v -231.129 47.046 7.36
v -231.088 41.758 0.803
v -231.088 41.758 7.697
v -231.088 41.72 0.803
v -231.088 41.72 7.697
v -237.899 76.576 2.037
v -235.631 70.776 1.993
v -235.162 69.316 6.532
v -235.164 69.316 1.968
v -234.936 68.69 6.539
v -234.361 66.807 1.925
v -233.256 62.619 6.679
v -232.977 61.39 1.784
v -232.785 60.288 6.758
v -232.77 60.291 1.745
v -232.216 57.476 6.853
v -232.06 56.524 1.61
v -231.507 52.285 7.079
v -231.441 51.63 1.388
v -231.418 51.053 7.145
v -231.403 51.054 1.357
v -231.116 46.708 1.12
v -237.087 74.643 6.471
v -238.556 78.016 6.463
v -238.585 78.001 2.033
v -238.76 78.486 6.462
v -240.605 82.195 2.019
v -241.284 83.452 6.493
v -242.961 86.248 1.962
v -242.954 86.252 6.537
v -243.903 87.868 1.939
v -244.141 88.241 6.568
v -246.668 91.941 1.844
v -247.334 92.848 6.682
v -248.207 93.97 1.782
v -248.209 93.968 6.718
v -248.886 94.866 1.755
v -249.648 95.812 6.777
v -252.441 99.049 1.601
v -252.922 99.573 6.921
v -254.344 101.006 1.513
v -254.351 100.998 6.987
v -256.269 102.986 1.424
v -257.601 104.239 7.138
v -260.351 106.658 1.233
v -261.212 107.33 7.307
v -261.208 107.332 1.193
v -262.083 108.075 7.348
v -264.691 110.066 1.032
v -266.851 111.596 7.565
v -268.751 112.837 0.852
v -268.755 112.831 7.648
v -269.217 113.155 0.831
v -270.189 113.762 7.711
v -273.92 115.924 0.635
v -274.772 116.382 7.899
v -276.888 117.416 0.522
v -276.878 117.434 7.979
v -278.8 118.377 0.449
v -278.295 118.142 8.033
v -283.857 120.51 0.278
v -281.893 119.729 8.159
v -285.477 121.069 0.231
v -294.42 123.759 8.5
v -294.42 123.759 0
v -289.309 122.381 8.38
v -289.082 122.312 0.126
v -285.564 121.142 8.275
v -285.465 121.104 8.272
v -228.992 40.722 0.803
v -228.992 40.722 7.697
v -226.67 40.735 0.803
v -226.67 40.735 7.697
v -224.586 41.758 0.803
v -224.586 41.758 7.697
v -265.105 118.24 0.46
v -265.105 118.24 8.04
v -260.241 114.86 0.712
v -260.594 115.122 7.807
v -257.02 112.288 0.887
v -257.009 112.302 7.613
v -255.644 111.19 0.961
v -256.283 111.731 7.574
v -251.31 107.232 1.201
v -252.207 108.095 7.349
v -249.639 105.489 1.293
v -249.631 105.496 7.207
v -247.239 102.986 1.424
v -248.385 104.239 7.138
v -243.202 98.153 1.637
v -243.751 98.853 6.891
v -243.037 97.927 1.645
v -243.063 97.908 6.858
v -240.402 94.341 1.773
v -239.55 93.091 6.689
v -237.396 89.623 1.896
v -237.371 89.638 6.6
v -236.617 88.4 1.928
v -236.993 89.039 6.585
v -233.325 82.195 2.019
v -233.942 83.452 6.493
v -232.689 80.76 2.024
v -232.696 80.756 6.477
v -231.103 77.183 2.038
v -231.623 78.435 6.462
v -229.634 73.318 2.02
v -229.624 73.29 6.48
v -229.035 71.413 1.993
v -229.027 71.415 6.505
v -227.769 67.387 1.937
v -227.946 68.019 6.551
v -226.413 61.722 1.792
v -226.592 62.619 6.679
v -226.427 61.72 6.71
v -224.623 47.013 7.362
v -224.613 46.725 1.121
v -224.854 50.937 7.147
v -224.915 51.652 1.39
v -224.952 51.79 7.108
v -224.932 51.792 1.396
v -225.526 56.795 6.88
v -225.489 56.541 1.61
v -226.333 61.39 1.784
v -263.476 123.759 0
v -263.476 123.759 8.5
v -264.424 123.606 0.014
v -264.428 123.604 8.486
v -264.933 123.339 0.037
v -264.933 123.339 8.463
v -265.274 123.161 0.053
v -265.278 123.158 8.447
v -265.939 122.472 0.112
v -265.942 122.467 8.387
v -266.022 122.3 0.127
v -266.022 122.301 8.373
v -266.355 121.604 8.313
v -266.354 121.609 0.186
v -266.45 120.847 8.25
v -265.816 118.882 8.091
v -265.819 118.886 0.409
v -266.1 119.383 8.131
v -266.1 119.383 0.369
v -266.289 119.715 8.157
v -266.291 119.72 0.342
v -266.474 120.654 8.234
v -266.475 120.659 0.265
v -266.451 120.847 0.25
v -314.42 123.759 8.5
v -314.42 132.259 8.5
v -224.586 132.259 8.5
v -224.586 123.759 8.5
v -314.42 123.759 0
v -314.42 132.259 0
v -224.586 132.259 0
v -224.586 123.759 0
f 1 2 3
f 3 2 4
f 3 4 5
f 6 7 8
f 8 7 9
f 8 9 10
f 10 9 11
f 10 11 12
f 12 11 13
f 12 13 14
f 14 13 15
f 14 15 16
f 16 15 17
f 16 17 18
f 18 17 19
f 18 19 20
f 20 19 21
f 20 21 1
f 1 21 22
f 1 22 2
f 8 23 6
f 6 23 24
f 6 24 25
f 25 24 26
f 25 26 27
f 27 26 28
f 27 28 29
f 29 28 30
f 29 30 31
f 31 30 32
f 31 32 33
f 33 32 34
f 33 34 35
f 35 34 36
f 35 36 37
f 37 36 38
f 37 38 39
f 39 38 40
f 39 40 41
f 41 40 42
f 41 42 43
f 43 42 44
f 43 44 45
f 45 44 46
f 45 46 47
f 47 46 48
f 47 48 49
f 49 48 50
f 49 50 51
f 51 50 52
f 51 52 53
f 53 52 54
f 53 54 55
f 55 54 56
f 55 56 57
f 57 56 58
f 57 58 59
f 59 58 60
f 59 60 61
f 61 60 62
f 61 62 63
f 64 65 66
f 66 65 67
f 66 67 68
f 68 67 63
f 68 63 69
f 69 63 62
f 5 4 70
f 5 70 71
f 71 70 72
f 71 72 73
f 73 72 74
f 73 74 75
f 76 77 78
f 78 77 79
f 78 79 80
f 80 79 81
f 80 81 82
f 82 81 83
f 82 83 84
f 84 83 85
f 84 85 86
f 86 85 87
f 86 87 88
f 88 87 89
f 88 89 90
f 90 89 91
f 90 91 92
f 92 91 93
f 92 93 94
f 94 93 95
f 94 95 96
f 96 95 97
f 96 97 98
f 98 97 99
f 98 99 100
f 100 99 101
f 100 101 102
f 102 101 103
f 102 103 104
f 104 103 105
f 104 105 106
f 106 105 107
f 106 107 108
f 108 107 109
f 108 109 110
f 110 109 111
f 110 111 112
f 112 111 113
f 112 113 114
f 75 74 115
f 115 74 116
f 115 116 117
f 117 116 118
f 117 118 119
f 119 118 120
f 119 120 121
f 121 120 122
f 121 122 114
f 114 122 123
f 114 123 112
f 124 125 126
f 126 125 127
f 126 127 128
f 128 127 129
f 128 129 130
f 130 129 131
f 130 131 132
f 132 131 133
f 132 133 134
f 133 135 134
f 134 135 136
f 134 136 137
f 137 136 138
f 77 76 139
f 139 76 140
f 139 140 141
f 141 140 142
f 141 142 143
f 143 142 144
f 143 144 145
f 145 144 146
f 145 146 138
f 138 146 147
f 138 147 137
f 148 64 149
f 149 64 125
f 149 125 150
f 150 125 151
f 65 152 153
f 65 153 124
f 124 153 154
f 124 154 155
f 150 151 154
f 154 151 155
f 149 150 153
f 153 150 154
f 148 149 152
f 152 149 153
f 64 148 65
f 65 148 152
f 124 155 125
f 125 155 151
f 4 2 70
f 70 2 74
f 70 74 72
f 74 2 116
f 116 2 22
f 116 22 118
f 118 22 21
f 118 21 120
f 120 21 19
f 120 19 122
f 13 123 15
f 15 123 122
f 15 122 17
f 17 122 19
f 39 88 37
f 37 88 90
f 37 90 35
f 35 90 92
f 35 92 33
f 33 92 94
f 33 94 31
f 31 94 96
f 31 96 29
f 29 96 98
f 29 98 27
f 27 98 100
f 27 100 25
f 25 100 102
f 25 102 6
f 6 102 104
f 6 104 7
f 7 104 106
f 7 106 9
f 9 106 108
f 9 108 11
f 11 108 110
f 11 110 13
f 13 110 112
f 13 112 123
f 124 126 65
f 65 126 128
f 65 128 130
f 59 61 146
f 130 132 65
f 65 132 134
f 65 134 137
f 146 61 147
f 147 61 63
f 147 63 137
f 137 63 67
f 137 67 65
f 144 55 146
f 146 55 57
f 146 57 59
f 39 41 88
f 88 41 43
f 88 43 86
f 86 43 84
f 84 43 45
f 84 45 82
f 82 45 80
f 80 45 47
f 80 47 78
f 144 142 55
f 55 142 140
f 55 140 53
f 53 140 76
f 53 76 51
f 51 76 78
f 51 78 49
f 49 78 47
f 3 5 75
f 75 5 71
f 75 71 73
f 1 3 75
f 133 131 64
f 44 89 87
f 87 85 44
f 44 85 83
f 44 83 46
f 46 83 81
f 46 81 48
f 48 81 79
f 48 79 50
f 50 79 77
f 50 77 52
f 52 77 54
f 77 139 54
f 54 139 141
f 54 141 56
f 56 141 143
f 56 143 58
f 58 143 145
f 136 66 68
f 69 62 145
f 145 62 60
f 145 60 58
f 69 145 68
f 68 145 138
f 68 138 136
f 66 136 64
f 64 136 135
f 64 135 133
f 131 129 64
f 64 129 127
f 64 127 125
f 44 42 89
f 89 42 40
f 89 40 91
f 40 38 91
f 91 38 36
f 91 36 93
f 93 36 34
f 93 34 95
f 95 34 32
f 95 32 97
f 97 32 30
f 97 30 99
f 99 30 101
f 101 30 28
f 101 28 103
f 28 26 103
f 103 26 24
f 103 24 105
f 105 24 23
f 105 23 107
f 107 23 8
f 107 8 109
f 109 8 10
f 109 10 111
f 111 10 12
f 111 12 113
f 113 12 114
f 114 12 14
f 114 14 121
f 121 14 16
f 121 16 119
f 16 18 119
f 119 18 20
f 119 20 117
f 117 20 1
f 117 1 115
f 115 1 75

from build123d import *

# Parameters (mm, degrees)
BOSS_EXTRU_1_DEPTH           = 8.5
CONG_1_R                     = 3
ENL_V_MAT_EXTRU_1_DEPTH      = 75
ENL_V_MAT_EXTRU_1_DEPTH_BACK = 75


with BuildPart() as part:
    # Esquisse1 → Boss.-Extru.1 (new body)
    with BuildSketch(Plane.XY):
        with BuildLine():
            Line((-224.585731899, 132.259188945), (-314.419566448, 132.259188945))
            Line((-314.419566448, 132.259188945), (-314.419566448, 123.759188945))
            Line((-314.419566448, 123.759188945), (-294.419566448, 123.759188945))
            ThreePointArc((-294.419566448, 123.759188945), (-248.192676197, 93.980686318), (-231.088431446, 41.720477627))
            ThreePointArc((-231.088431446, 41.720477627), (-227.830567684, 40.59751219), (-224.585731899, 41.757584768))
            ThreePointArc((-224.585731899, 41.757584768), (-237.687220273, 90.187689192), (-274.970975671, 123.759188945))
            Line((-274.970975671, 123.759188945), (-224.585731899, 123.759188945))
            Line((-224.585731899, 123.759188945), (-224.585731899, 132.259188945))
        make_face()
    extrude(amount=BOSS_EXTRU_1_DEPTH)

    # Congé1
    cong_1_edges = [part.edges().sort_by_distance(p)[0] for p in [
        (-274.970975671, 123.759188945, 4.25),
    ]]
    fillet(cong_1_edges, radius=CONG_1_R)

    # Esquisse2 → Enlèv. mat.-Extru.1 (cut, two sides: drawn at the far end of the back side and taken through both)
    with BuildSketch(Plane(origin=(-224.585731899, 0, 0), x_dir=(0, 0, -1), z_dir=(1, 0, 0)).offset(-ENL_V_MAT_EXTRU_1_DEPTH_BACK)):
        with BuildLine():
            Line((-8.5, 81.05443386), (-8.5, 123.759188945))
            add(Edge.make_bspline(
                [(-7.696595714, 41.757584768), (-4.874996001, 82.844472097), (-8.5, 123.759188945)],
                knots=[0, 0, 0, 1, 1, 1], degree=2))
            Line((-7.696595714, 41.757584768), (-7.696595714, 34.641133104))
            Line((-7.696595714, 34.641133104), (-8.5, 34.641133104))
            Line((-8.5, 34.641133104), (-8.5, 81.05443386))
        make_face()
        with BuildLine():
            Line((0, 123.759188945), (0, 81.05443386))
            Line((0, 81.05443386), (0, 36.772624368))
            Line((0, 36.772624368), (-0.803404286, 36.772624368))
            Line((-0.803404286, 36.772624368), (-0.803404286, 41.757584768))
            add(Edge.make_bspline(
                [(-0.803404286, 41.757584768), (-3.625003999, 82.844472097), (0, 123.759188945)],
                knots=[0, 0, 0, 1, 1, 1], degree=2))
        make_face()
    extrude(amount=ENL_V_MAT_EXTRU_1_DEPTH + ENL_V_MAT_EXTRU_1_DEPTH_BACK, mode=Mode.SUBTRACT)


solid = part.part
